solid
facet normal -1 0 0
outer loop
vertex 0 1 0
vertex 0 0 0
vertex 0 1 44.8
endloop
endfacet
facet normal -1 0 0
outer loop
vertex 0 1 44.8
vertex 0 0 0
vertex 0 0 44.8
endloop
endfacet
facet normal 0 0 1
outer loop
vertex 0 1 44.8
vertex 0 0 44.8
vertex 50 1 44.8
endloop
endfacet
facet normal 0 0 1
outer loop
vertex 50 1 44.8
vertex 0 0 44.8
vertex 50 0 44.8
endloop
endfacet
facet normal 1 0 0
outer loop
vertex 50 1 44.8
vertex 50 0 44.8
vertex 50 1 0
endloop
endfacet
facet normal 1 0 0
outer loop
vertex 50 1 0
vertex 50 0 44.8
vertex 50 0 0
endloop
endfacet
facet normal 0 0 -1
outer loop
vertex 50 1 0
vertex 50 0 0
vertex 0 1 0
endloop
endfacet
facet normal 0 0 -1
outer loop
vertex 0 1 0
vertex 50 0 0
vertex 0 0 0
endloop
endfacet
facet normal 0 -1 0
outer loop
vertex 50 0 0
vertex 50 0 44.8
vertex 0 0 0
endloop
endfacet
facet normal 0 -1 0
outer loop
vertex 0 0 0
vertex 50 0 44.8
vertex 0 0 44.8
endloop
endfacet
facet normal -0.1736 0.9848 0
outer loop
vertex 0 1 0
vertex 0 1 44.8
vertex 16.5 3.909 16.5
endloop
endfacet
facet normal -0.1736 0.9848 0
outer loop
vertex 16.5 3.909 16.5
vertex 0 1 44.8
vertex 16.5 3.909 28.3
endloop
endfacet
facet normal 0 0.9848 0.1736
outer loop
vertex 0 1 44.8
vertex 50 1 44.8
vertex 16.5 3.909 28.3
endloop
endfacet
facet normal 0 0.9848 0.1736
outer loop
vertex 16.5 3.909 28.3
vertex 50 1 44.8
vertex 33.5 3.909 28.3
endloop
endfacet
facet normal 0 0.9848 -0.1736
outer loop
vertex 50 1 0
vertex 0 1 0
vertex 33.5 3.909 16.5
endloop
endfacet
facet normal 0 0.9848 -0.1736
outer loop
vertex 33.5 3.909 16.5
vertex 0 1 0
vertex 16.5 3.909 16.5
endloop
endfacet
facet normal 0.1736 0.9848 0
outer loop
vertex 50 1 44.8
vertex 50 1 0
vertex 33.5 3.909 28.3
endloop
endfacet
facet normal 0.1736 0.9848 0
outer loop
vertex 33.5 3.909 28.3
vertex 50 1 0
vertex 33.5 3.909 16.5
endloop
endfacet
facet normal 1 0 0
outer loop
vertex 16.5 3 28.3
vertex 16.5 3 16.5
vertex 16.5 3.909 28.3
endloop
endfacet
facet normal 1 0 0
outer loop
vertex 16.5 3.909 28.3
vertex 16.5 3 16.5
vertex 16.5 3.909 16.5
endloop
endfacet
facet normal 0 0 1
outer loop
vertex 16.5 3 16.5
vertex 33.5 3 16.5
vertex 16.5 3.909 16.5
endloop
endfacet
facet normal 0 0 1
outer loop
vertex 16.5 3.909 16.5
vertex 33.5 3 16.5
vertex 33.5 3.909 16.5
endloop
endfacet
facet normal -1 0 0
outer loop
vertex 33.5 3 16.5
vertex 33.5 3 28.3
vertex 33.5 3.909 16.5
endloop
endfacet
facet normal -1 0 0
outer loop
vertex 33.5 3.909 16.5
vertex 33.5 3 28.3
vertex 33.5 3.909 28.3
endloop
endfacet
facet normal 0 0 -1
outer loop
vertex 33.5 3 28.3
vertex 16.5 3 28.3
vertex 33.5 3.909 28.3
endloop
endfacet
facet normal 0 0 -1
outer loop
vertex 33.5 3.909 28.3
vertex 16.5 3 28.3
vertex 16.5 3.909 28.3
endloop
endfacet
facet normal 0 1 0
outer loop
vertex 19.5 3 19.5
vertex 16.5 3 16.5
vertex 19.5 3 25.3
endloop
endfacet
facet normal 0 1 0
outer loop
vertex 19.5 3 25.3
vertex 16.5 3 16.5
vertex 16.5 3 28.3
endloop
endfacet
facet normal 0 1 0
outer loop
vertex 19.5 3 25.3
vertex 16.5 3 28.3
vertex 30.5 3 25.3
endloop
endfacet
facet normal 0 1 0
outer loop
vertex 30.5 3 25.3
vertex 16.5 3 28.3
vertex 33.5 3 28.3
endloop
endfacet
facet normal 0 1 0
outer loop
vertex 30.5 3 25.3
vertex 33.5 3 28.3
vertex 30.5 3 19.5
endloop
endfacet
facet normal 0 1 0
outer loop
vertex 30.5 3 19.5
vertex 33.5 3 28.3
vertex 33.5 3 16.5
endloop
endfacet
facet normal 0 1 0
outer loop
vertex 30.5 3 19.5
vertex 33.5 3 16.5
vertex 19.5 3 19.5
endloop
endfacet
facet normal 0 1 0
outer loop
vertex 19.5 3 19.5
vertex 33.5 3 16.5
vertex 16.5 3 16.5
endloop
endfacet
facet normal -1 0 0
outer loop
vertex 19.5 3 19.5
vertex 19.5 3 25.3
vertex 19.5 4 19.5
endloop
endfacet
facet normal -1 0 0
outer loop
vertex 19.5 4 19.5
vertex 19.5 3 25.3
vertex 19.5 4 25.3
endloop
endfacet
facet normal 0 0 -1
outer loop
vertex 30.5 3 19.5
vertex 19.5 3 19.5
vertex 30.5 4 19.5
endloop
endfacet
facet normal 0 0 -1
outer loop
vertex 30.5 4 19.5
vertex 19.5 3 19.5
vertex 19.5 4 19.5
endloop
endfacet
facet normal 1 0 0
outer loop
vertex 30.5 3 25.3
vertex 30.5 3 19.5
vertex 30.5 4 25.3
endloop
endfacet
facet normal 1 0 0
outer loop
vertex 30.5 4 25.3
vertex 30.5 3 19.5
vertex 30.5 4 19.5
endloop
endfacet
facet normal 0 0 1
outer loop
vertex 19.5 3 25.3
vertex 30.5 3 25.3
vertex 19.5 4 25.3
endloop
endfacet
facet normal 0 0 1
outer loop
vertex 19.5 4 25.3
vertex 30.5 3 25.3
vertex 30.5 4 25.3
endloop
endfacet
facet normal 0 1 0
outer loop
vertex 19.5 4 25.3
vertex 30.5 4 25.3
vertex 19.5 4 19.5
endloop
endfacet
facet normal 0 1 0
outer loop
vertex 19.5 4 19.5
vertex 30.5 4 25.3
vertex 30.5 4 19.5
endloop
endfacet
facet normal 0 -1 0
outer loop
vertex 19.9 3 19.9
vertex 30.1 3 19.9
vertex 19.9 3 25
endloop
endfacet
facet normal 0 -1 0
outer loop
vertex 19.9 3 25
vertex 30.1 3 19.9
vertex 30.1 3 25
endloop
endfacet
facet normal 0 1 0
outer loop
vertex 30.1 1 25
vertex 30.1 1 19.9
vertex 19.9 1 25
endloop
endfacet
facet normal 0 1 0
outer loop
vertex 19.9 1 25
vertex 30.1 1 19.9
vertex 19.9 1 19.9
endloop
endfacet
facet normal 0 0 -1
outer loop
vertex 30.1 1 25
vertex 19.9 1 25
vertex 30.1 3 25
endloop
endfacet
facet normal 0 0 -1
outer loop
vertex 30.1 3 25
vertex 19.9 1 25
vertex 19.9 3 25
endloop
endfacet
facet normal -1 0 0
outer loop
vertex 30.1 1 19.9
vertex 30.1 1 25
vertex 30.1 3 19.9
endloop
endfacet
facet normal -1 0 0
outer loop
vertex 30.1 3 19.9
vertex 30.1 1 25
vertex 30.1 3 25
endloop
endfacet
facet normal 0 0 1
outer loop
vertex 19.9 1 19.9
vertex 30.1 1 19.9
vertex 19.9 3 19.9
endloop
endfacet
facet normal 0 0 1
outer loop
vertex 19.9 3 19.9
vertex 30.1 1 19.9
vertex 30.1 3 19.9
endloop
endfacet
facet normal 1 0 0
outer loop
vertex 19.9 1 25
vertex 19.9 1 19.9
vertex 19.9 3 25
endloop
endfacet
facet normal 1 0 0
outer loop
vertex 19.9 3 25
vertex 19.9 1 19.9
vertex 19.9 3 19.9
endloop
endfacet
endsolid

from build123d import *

# Parameters (mm, degrees)
SKETCH1_W             = 50
SKETCH1_H             = 44.8
BOSS_EXTRUDE1_DEPTH   = 4
CHAMFER1_SIZE         = 3
CHAMFER1_SIZE2        = 17.013845459
CHAMFER1_PART_2_SIZE  = 3
CHAMFER1_PART_2_SIZE2 = 17.013845459
CHAMFER1_PART_3_SIZE  = 3
CHAMFER1_PART_3_SIZE2 = 17.013845459
CHAMFER1_PART_4_SIZE  = 3
CHAMFER1_PART_4_SIZE2 = 17.013845459
SKETCH2_W             = 17
SKETCH2_H             = 11.8
SKETCH2_W_2           = 11
SKETCH2_H_2           = 5.8
CUT_EXTRUDE1_DEPTH    = 1
SKETCH3_W             = 10.2
SKETCH3_H             = 5.1
CUT_EXTRUDE2_DEPTH    = 3
SKETCH5_W             = 11
SKETCH5_H             = 5.8
BOSS_EXTRUDE2_DEPTH   = 1


with BuildPart() as part:
    # Sketch1 → Boss-Extrude1 (new body)
    with BuildSketch(Plane(origin=(0, 0, 0), x_dir=(1, 0, 0), z_dir=(0, 1, 0))):
        with Locations((25, -22.4)):
            Rectangle(SKETCH1_W, SKETCH1_H)
    extrude(amount=BOSS_EXTRUDE1_DEPTH)

    # Chamfer1
    chamfer1_edges = [part.edges().sort_by_distance(p)[0] for p in [
        (50, 4, 22.4),
    ]]
    chamfer1_side = [part.faces().sort_by_distance(p)[0] for p in [
        (50, 2, 22.4),
    ]]
    chamfer(chamfer1_edges, length=CHAMFER1_SIZE, length2=CHAMFER1_SIZE2, reference=chamfer1_side[0])

    # Chamfer1 part 2
    chamfer1_part_2_edges = [part.edges().sort_by_distance(p)[0] for p in [
        (25, 4, 0),
    ]]
    chamfer1_part_2_side = [part.faces().sort_by_distance(p)[0] for p in [
        (25, 2, 0),
    ]]
    chamfer(chamfer1_part_2_edges, length=CHAMFER1_PART_2_SIZE, length2=CHAMFER1_PART_2_SIZE2, reference=chamfer1_part_2_side[0])

    # Chamfer1 part 3
    chamfer1_part_3_edges = [part.edges().sort_by_distance(p)[0] for p in [
        (0, 4, 22.4),
    ]]
    chamfer1_part_3_side = [part.faces().sort_by_distance(p)[0] for p in [
        (0, 2, 22.4),
    ]]
    chamfer(chamfer1_part_3_edges, length=CHAMFER1_PART_3_SIZE, length2=CHAMFER1_PART_3_SIZE2, reference=chamfer1_part_3_side[0])

    # Chamfer1 part 4
    chamfer1_part_4_edges = [part.edges().sort_by_distance(p)[0] for p in [
        (25, 4, 44.8),
    ]]
    chamfer1_part_4_side = [part.faces().sort_by_distance(p)[0] for p in [
        (25, 2, 44.8),
    ]]
    chamfer(chamfer1_part_4_edges, length=CHAMFER1_PART_4_SIZE, length2=CHAMFER1_PART_4_SIZE2, reference=chamfer1_part_4_side[0])

    # Sketch2 → Cut-Extrude1 (cut)
    with BuildSketch(Plane(origin=(0, 4, 0), x_dir=(1, 0, 0), z_dir=(0, 1, 0))):
        with Locations((25, -22.4)):
            Rectangle(SKETCH2_W, SKETCH2_H)
        with Locations((25, -22.4)):
            Rectangle(SKETCH2_W_2, SKETCH2_H_2, mode=Mode.SUBTRACT)
    extrude(amount=-CUT_EXTRUDE1_DEPTH, mode=Mode.SUBTRACT)

    # Sketch3 → Cut-Extrude2 (cut)
    with BuildSketch(Plane(origin=(0, 4, 0), x_dir=(1, 0, 0), z_dir=(0, 1, 0))):
        with Locations((25, -22.45)):
            Rectangle(SKETCH3_W, SKETCH3_H)
    extrude(amount=-CUT_EXTRUDE2_DEPTH, mode=Mode.SUBTRACT)

    # Sketch5 → Boss-Extrude2 (add)
    with BuildSketch(Plane(origin=(0, 4, 0), x_dir=(1, 0, 0), z_dir=(0, 1, 0))):
        with Locations((25, -22.4)):
            Rectangle(SKETCH5_W, SKETCH5_H)
    extrude(amount=-BOSS_EXTRUDE2_DEPTH)


solid = part.part
